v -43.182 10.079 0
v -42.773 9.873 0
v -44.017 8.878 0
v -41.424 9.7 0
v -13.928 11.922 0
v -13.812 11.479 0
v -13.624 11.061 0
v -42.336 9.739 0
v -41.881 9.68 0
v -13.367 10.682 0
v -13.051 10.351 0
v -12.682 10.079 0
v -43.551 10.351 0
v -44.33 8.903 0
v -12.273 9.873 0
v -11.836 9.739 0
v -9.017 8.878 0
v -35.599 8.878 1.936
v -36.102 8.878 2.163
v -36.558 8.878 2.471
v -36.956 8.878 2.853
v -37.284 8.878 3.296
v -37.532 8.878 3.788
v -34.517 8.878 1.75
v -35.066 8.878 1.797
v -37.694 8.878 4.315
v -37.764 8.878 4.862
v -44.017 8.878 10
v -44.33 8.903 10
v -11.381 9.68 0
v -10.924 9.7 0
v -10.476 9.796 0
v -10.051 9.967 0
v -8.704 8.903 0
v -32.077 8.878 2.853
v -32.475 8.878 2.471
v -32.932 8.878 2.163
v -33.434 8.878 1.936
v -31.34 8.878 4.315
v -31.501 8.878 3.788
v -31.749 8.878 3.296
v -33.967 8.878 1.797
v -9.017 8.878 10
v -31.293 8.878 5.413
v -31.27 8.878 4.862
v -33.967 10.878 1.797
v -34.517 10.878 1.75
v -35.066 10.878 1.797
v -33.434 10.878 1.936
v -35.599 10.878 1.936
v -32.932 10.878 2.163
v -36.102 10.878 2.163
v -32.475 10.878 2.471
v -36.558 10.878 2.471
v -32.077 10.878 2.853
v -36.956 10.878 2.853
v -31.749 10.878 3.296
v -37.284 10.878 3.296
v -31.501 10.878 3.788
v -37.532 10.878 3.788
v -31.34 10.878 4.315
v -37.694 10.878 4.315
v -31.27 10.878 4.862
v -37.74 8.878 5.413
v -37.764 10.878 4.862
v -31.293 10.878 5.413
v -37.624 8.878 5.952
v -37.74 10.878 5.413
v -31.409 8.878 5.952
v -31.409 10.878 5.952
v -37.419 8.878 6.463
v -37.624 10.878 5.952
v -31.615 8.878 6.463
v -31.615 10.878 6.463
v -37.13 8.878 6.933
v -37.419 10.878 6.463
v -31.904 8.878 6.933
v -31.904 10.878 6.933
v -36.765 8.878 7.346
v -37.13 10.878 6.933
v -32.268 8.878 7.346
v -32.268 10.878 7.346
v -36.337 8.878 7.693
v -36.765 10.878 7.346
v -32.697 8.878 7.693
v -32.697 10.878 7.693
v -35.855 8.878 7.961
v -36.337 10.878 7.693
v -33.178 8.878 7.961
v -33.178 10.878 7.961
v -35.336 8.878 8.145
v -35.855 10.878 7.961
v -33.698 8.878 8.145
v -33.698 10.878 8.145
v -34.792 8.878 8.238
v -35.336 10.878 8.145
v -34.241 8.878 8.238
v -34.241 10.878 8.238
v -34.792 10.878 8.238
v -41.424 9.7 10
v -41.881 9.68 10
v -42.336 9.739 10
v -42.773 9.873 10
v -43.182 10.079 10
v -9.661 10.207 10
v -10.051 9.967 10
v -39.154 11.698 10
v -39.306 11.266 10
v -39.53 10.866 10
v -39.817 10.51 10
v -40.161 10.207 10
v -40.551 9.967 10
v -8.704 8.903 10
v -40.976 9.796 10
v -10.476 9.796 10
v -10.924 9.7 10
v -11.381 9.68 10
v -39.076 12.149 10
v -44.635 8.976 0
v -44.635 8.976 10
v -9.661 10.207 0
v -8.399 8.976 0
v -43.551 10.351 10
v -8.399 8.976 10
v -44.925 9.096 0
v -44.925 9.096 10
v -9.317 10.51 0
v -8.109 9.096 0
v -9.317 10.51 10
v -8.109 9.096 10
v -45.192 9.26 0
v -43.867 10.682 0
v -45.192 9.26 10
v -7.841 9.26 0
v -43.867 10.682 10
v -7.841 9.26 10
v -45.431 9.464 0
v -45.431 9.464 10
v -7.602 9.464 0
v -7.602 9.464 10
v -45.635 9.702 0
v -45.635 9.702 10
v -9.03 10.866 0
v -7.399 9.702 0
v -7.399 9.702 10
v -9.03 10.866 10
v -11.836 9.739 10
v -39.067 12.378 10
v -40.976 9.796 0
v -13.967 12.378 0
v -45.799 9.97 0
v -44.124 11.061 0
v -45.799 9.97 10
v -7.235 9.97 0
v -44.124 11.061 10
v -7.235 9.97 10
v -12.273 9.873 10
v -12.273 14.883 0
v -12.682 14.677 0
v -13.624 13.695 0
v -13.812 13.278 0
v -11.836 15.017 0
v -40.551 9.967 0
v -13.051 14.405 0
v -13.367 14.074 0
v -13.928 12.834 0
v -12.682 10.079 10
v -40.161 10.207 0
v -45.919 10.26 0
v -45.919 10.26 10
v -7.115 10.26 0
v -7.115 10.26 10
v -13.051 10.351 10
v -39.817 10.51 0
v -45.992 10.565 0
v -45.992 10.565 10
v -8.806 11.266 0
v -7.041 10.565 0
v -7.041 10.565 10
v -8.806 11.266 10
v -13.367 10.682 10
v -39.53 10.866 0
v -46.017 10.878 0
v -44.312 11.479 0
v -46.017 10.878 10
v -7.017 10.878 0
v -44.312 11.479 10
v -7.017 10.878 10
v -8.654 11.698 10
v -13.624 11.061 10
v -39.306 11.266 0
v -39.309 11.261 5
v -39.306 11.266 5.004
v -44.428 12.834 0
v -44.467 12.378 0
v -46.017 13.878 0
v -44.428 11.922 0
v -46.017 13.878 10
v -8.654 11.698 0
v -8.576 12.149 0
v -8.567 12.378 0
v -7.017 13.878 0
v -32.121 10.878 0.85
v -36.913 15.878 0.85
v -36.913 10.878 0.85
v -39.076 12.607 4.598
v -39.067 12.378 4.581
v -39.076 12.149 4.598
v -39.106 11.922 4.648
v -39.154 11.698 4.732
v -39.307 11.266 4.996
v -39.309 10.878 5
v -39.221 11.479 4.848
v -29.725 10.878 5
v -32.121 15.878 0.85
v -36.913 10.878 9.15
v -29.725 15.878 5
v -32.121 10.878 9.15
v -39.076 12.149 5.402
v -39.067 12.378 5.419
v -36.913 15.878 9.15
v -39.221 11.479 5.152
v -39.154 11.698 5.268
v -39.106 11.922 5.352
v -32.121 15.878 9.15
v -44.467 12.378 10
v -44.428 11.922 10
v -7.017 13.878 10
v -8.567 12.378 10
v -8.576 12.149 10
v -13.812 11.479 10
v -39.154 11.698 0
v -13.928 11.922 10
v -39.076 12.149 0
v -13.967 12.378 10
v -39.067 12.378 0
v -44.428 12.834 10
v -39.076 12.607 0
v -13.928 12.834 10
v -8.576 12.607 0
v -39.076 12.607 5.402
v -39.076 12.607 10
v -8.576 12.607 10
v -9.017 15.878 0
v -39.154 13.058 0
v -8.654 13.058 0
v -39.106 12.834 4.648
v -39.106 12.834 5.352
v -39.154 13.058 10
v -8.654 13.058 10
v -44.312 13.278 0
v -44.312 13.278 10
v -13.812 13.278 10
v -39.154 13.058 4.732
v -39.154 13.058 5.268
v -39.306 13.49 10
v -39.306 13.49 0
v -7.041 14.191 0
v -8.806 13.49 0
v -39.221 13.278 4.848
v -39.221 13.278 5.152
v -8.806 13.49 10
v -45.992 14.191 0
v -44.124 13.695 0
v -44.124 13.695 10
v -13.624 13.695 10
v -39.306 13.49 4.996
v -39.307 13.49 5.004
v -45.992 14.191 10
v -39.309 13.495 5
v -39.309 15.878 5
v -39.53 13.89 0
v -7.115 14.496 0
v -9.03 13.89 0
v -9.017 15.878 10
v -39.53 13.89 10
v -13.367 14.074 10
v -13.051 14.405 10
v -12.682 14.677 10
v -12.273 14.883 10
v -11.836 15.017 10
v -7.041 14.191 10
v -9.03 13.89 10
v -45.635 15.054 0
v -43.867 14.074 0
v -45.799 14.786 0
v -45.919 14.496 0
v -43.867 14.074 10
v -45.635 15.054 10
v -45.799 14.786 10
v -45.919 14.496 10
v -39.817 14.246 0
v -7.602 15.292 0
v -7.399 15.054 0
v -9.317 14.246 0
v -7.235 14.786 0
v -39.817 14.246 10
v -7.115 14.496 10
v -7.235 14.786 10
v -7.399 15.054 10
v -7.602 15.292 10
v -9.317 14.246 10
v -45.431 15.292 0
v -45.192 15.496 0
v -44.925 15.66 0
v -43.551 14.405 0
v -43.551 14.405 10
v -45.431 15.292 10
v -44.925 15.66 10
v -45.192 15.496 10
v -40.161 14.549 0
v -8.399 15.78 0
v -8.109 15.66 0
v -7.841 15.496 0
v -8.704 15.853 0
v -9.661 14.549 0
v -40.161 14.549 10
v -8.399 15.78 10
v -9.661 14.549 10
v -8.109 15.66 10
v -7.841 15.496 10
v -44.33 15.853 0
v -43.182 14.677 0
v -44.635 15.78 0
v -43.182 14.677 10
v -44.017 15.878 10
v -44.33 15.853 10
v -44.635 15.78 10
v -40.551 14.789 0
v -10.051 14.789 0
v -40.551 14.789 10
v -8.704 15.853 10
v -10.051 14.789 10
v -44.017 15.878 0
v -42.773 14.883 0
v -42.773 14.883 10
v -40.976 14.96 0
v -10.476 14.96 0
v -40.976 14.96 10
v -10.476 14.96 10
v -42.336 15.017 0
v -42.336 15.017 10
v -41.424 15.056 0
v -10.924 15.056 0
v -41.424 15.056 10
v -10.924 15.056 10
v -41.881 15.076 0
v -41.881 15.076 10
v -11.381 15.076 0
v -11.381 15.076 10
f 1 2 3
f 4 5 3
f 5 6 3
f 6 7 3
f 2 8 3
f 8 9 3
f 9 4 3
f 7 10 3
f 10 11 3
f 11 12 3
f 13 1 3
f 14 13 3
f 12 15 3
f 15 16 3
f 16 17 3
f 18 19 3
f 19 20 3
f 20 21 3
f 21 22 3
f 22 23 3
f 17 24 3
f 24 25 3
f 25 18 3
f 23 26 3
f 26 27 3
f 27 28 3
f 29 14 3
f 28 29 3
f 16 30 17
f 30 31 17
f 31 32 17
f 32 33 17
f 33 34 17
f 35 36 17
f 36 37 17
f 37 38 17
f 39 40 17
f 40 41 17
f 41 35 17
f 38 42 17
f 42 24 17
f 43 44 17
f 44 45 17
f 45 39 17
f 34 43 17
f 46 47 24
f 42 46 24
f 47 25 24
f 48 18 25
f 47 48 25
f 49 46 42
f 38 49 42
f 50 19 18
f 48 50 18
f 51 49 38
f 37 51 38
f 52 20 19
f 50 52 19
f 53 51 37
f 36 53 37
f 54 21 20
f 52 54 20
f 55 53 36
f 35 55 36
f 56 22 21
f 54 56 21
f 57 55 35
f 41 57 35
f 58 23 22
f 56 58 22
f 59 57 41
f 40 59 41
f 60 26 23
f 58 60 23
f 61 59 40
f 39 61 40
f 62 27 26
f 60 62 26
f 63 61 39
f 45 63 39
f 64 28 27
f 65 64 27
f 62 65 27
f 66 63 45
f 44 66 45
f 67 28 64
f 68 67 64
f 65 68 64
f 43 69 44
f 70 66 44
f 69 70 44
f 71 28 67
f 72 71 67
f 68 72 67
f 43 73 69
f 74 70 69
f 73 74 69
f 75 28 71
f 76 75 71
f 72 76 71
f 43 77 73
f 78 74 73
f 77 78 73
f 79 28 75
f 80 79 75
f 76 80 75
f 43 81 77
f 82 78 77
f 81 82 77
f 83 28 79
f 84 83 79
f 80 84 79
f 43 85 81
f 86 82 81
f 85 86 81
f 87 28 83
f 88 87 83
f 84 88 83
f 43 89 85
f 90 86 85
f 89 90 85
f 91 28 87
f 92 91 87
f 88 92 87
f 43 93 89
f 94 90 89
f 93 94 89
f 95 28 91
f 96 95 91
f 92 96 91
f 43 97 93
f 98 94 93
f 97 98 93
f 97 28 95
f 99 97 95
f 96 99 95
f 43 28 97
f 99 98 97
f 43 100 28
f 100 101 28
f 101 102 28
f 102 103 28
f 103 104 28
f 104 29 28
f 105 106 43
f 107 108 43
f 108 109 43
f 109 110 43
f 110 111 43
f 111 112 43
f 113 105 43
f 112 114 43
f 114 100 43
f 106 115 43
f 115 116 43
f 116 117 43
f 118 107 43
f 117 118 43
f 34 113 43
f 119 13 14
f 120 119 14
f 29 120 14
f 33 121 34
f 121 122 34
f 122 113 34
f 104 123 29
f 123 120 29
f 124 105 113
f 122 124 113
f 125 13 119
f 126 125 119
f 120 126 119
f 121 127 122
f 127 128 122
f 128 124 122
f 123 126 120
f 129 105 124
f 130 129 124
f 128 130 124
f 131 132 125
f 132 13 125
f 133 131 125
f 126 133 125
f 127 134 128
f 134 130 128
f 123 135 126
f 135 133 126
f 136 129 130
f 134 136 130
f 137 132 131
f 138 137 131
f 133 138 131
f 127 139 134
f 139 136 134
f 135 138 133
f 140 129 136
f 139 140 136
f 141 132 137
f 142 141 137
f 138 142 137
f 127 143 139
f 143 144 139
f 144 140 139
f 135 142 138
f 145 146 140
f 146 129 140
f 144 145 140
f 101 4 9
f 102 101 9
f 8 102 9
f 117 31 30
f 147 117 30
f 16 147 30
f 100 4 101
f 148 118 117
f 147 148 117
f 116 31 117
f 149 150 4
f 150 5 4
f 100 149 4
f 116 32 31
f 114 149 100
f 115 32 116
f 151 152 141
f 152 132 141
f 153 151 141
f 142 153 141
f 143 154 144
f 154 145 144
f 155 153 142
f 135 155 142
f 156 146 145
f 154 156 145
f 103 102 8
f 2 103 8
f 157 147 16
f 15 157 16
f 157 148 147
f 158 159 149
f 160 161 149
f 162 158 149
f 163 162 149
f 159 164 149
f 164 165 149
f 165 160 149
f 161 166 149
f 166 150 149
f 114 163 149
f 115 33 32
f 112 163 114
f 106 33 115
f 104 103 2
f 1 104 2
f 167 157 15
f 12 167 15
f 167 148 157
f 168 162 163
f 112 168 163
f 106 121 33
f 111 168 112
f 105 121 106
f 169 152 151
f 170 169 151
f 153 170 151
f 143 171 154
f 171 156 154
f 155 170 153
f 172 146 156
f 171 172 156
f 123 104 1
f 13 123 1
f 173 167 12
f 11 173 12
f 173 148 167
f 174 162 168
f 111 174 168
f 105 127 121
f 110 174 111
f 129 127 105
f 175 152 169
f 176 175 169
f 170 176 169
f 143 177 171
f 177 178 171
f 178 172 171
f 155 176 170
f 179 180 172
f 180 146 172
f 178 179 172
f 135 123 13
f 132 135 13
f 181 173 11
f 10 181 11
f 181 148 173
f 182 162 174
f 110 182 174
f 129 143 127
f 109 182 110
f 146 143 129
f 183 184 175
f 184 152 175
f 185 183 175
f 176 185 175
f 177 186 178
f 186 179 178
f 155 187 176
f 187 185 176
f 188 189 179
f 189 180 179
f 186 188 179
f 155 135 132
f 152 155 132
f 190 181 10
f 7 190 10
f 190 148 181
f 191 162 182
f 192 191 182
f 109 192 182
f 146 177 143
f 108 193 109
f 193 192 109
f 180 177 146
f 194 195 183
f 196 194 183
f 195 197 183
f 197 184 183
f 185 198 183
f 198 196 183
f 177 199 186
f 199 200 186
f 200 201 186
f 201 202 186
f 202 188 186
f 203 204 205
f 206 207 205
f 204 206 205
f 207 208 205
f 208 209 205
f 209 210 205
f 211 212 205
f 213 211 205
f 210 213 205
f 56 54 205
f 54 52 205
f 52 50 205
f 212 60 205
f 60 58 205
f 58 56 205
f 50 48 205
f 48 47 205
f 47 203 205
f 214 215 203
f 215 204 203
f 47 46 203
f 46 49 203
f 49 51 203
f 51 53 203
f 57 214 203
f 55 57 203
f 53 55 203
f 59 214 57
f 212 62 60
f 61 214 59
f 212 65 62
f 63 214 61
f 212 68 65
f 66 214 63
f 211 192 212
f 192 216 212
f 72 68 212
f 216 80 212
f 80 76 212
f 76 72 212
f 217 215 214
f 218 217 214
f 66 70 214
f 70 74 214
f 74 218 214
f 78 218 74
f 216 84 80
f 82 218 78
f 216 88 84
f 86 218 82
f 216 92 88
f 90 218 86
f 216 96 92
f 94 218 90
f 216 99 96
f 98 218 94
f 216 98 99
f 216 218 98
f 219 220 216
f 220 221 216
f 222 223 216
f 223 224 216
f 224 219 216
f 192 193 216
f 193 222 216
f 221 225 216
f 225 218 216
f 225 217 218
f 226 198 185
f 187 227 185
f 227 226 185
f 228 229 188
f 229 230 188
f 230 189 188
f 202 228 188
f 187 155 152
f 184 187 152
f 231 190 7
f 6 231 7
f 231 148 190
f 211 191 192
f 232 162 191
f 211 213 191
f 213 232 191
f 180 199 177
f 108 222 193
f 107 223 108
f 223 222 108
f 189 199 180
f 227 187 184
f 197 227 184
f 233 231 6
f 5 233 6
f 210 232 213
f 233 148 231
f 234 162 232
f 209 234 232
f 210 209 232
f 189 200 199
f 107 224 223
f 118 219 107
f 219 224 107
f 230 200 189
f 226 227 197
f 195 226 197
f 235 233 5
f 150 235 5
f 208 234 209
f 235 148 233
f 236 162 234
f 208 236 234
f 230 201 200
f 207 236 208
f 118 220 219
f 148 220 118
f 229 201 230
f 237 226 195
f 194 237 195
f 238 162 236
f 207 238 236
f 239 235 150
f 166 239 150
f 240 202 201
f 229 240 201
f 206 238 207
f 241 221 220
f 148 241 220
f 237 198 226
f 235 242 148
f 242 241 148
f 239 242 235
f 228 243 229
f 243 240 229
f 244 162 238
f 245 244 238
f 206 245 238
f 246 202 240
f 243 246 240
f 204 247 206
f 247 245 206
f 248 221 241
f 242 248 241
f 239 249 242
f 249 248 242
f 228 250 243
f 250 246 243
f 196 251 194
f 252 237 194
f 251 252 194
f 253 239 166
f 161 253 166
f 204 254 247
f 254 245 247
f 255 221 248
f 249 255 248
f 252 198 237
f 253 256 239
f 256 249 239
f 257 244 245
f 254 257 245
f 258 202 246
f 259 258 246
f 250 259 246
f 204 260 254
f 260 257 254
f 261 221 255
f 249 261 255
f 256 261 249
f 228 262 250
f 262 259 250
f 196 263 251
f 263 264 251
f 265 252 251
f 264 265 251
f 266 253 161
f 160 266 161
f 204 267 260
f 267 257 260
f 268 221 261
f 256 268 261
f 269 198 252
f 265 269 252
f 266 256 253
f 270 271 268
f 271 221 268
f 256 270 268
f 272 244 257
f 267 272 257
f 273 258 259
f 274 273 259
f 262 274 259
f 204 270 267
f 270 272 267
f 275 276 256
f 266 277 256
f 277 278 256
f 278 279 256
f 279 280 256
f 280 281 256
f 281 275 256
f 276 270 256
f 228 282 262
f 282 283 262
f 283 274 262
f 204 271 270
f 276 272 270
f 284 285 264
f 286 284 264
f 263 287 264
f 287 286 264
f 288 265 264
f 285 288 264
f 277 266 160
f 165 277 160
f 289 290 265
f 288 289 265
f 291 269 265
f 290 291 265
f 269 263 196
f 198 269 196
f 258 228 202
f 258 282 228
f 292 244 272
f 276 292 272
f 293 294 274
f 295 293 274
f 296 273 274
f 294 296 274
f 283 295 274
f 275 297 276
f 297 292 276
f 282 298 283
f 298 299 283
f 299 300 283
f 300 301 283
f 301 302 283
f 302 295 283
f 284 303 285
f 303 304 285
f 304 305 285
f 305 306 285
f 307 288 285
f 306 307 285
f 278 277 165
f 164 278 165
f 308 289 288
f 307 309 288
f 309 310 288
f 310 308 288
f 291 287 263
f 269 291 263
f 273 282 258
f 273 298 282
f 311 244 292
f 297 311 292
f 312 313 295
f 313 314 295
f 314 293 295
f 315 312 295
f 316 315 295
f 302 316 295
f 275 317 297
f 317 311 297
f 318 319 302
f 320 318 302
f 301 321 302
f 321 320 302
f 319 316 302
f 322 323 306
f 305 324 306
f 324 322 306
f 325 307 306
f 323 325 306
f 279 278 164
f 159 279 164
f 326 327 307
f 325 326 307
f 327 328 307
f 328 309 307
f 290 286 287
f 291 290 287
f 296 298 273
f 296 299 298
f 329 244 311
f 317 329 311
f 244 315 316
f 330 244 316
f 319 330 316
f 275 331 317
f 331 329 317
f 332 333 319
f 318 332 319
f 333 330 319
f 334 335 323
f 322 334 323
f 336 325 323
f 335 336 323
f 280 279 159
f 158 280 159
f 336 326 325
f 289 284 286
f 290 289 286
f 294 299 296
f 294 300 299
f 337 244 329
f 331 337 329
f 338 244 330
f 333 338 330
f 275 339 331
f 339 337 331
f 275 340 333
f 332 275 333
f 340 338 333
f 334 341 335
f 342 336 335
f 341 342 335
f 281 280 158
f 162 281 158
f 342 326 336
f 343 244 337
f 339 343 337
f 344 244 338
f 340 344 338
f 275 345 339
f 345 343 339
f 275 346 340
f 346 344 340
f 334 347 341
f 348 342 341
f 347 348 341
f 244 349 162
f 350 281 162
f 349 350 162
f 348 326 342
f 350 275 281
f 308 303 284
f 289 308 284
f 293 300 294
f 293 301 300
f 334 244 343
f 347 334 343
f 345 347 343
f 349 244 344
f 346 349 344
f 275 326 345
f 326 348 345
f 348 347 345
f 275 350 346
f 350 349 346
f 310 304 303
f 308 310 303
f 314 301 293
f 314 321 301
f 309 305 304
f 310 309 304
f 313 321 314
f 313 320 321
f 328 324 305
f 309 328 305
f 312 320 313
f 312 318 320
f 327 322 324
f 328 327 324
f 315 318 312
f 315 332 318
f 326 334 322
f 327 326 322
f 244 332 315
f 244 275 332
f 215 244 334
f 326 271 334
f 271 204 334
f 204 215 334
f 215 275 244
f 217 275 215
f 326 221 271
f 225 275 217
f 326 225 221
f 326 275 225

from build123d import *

# Parameters (mm, degrees)
CROQUIS1_W              = 39
CROQUIS1_H              = 7
CROQUIS1_R              = 2.7
SALIENTE_EXTRUIR1_DEPTH = 10
CORTAR_EXTRUIR1_DEPTH   = 7
REDONDEO1_R             = 2
CROQUIS4_R              = 3.25
SALIENTE_EXTRUIR2_DEPTH = 2


with BuildPart() as part:
    # Croquis1 → Saliente-Extruir1 (new body)
    with BuildSketch(Plane.XY):
        with Locations((-26.516694491, 12.37804878)):
            Rectangle(CROQUIS1_W, CROQUIS1_H)
        with Locations((-41.766694491, 12.37804878)):
            Circle(CROQUIS1_R, mode=Mode.SUBTRACT)
        with Locations((-11.266694491, 12.37804878)):
            Circle(CROQUIS1_R, mode=Mode.SUBTRACT)
    extrude(amount=SALIENTE_EXTRUIR1_DEPTH)

    # Croquis2 → Cortar-Extruir1 (cut)
    with BuildSketch(Plane.XZ.offset(-8.87804878)):
        Polygon((-29.724687257, 5), (-32.120690874, 9.15), (-36.912698108, 9.15), (-39.308701725, 5), (-36.912698108, 0.85), (-32.120690874, 0.85), align=None)
    extrude(amount=-CORTAR_EXTRUIR1_DEPTH, mode=Mode.SUBTRACT)

    # Redondeo1
    redondeo1_edges = [part.edges().sort_by_distance(p)[0] for p in [
        (-46.016694491, 15.87804878, 5),
        (-7.016694491, 15.87804878, 5),
        (-7.016694491, 8.87804878, 5),
        (-46.016694491, 8.87804878, 5),
    ]]
    fillet(redondeo1_edges, radius=REDONDEO1_R)

    # Croquis4 → Saliente-Extruir2 (add)
    with BuildSketch(Plane.XZ.offset(-8.87804878)):
        Polygon((-29.724687257, 5), (-32.120690874, 9.15), (-36.912698108, 9.15), (-39.308701725, 5), (-36.912698108, 0.85), (-32.120690874, 0.85), align=None)
        with Locations(Location((-34.516694491, 5, 0), (0, 0, 270))):
            Circle(CROQUIS4_R, mode=Mode.SUBTRACT)
    extrude(amount=-SALIENTE_EXTRUIR2_DEPTH)


solid = part.part
